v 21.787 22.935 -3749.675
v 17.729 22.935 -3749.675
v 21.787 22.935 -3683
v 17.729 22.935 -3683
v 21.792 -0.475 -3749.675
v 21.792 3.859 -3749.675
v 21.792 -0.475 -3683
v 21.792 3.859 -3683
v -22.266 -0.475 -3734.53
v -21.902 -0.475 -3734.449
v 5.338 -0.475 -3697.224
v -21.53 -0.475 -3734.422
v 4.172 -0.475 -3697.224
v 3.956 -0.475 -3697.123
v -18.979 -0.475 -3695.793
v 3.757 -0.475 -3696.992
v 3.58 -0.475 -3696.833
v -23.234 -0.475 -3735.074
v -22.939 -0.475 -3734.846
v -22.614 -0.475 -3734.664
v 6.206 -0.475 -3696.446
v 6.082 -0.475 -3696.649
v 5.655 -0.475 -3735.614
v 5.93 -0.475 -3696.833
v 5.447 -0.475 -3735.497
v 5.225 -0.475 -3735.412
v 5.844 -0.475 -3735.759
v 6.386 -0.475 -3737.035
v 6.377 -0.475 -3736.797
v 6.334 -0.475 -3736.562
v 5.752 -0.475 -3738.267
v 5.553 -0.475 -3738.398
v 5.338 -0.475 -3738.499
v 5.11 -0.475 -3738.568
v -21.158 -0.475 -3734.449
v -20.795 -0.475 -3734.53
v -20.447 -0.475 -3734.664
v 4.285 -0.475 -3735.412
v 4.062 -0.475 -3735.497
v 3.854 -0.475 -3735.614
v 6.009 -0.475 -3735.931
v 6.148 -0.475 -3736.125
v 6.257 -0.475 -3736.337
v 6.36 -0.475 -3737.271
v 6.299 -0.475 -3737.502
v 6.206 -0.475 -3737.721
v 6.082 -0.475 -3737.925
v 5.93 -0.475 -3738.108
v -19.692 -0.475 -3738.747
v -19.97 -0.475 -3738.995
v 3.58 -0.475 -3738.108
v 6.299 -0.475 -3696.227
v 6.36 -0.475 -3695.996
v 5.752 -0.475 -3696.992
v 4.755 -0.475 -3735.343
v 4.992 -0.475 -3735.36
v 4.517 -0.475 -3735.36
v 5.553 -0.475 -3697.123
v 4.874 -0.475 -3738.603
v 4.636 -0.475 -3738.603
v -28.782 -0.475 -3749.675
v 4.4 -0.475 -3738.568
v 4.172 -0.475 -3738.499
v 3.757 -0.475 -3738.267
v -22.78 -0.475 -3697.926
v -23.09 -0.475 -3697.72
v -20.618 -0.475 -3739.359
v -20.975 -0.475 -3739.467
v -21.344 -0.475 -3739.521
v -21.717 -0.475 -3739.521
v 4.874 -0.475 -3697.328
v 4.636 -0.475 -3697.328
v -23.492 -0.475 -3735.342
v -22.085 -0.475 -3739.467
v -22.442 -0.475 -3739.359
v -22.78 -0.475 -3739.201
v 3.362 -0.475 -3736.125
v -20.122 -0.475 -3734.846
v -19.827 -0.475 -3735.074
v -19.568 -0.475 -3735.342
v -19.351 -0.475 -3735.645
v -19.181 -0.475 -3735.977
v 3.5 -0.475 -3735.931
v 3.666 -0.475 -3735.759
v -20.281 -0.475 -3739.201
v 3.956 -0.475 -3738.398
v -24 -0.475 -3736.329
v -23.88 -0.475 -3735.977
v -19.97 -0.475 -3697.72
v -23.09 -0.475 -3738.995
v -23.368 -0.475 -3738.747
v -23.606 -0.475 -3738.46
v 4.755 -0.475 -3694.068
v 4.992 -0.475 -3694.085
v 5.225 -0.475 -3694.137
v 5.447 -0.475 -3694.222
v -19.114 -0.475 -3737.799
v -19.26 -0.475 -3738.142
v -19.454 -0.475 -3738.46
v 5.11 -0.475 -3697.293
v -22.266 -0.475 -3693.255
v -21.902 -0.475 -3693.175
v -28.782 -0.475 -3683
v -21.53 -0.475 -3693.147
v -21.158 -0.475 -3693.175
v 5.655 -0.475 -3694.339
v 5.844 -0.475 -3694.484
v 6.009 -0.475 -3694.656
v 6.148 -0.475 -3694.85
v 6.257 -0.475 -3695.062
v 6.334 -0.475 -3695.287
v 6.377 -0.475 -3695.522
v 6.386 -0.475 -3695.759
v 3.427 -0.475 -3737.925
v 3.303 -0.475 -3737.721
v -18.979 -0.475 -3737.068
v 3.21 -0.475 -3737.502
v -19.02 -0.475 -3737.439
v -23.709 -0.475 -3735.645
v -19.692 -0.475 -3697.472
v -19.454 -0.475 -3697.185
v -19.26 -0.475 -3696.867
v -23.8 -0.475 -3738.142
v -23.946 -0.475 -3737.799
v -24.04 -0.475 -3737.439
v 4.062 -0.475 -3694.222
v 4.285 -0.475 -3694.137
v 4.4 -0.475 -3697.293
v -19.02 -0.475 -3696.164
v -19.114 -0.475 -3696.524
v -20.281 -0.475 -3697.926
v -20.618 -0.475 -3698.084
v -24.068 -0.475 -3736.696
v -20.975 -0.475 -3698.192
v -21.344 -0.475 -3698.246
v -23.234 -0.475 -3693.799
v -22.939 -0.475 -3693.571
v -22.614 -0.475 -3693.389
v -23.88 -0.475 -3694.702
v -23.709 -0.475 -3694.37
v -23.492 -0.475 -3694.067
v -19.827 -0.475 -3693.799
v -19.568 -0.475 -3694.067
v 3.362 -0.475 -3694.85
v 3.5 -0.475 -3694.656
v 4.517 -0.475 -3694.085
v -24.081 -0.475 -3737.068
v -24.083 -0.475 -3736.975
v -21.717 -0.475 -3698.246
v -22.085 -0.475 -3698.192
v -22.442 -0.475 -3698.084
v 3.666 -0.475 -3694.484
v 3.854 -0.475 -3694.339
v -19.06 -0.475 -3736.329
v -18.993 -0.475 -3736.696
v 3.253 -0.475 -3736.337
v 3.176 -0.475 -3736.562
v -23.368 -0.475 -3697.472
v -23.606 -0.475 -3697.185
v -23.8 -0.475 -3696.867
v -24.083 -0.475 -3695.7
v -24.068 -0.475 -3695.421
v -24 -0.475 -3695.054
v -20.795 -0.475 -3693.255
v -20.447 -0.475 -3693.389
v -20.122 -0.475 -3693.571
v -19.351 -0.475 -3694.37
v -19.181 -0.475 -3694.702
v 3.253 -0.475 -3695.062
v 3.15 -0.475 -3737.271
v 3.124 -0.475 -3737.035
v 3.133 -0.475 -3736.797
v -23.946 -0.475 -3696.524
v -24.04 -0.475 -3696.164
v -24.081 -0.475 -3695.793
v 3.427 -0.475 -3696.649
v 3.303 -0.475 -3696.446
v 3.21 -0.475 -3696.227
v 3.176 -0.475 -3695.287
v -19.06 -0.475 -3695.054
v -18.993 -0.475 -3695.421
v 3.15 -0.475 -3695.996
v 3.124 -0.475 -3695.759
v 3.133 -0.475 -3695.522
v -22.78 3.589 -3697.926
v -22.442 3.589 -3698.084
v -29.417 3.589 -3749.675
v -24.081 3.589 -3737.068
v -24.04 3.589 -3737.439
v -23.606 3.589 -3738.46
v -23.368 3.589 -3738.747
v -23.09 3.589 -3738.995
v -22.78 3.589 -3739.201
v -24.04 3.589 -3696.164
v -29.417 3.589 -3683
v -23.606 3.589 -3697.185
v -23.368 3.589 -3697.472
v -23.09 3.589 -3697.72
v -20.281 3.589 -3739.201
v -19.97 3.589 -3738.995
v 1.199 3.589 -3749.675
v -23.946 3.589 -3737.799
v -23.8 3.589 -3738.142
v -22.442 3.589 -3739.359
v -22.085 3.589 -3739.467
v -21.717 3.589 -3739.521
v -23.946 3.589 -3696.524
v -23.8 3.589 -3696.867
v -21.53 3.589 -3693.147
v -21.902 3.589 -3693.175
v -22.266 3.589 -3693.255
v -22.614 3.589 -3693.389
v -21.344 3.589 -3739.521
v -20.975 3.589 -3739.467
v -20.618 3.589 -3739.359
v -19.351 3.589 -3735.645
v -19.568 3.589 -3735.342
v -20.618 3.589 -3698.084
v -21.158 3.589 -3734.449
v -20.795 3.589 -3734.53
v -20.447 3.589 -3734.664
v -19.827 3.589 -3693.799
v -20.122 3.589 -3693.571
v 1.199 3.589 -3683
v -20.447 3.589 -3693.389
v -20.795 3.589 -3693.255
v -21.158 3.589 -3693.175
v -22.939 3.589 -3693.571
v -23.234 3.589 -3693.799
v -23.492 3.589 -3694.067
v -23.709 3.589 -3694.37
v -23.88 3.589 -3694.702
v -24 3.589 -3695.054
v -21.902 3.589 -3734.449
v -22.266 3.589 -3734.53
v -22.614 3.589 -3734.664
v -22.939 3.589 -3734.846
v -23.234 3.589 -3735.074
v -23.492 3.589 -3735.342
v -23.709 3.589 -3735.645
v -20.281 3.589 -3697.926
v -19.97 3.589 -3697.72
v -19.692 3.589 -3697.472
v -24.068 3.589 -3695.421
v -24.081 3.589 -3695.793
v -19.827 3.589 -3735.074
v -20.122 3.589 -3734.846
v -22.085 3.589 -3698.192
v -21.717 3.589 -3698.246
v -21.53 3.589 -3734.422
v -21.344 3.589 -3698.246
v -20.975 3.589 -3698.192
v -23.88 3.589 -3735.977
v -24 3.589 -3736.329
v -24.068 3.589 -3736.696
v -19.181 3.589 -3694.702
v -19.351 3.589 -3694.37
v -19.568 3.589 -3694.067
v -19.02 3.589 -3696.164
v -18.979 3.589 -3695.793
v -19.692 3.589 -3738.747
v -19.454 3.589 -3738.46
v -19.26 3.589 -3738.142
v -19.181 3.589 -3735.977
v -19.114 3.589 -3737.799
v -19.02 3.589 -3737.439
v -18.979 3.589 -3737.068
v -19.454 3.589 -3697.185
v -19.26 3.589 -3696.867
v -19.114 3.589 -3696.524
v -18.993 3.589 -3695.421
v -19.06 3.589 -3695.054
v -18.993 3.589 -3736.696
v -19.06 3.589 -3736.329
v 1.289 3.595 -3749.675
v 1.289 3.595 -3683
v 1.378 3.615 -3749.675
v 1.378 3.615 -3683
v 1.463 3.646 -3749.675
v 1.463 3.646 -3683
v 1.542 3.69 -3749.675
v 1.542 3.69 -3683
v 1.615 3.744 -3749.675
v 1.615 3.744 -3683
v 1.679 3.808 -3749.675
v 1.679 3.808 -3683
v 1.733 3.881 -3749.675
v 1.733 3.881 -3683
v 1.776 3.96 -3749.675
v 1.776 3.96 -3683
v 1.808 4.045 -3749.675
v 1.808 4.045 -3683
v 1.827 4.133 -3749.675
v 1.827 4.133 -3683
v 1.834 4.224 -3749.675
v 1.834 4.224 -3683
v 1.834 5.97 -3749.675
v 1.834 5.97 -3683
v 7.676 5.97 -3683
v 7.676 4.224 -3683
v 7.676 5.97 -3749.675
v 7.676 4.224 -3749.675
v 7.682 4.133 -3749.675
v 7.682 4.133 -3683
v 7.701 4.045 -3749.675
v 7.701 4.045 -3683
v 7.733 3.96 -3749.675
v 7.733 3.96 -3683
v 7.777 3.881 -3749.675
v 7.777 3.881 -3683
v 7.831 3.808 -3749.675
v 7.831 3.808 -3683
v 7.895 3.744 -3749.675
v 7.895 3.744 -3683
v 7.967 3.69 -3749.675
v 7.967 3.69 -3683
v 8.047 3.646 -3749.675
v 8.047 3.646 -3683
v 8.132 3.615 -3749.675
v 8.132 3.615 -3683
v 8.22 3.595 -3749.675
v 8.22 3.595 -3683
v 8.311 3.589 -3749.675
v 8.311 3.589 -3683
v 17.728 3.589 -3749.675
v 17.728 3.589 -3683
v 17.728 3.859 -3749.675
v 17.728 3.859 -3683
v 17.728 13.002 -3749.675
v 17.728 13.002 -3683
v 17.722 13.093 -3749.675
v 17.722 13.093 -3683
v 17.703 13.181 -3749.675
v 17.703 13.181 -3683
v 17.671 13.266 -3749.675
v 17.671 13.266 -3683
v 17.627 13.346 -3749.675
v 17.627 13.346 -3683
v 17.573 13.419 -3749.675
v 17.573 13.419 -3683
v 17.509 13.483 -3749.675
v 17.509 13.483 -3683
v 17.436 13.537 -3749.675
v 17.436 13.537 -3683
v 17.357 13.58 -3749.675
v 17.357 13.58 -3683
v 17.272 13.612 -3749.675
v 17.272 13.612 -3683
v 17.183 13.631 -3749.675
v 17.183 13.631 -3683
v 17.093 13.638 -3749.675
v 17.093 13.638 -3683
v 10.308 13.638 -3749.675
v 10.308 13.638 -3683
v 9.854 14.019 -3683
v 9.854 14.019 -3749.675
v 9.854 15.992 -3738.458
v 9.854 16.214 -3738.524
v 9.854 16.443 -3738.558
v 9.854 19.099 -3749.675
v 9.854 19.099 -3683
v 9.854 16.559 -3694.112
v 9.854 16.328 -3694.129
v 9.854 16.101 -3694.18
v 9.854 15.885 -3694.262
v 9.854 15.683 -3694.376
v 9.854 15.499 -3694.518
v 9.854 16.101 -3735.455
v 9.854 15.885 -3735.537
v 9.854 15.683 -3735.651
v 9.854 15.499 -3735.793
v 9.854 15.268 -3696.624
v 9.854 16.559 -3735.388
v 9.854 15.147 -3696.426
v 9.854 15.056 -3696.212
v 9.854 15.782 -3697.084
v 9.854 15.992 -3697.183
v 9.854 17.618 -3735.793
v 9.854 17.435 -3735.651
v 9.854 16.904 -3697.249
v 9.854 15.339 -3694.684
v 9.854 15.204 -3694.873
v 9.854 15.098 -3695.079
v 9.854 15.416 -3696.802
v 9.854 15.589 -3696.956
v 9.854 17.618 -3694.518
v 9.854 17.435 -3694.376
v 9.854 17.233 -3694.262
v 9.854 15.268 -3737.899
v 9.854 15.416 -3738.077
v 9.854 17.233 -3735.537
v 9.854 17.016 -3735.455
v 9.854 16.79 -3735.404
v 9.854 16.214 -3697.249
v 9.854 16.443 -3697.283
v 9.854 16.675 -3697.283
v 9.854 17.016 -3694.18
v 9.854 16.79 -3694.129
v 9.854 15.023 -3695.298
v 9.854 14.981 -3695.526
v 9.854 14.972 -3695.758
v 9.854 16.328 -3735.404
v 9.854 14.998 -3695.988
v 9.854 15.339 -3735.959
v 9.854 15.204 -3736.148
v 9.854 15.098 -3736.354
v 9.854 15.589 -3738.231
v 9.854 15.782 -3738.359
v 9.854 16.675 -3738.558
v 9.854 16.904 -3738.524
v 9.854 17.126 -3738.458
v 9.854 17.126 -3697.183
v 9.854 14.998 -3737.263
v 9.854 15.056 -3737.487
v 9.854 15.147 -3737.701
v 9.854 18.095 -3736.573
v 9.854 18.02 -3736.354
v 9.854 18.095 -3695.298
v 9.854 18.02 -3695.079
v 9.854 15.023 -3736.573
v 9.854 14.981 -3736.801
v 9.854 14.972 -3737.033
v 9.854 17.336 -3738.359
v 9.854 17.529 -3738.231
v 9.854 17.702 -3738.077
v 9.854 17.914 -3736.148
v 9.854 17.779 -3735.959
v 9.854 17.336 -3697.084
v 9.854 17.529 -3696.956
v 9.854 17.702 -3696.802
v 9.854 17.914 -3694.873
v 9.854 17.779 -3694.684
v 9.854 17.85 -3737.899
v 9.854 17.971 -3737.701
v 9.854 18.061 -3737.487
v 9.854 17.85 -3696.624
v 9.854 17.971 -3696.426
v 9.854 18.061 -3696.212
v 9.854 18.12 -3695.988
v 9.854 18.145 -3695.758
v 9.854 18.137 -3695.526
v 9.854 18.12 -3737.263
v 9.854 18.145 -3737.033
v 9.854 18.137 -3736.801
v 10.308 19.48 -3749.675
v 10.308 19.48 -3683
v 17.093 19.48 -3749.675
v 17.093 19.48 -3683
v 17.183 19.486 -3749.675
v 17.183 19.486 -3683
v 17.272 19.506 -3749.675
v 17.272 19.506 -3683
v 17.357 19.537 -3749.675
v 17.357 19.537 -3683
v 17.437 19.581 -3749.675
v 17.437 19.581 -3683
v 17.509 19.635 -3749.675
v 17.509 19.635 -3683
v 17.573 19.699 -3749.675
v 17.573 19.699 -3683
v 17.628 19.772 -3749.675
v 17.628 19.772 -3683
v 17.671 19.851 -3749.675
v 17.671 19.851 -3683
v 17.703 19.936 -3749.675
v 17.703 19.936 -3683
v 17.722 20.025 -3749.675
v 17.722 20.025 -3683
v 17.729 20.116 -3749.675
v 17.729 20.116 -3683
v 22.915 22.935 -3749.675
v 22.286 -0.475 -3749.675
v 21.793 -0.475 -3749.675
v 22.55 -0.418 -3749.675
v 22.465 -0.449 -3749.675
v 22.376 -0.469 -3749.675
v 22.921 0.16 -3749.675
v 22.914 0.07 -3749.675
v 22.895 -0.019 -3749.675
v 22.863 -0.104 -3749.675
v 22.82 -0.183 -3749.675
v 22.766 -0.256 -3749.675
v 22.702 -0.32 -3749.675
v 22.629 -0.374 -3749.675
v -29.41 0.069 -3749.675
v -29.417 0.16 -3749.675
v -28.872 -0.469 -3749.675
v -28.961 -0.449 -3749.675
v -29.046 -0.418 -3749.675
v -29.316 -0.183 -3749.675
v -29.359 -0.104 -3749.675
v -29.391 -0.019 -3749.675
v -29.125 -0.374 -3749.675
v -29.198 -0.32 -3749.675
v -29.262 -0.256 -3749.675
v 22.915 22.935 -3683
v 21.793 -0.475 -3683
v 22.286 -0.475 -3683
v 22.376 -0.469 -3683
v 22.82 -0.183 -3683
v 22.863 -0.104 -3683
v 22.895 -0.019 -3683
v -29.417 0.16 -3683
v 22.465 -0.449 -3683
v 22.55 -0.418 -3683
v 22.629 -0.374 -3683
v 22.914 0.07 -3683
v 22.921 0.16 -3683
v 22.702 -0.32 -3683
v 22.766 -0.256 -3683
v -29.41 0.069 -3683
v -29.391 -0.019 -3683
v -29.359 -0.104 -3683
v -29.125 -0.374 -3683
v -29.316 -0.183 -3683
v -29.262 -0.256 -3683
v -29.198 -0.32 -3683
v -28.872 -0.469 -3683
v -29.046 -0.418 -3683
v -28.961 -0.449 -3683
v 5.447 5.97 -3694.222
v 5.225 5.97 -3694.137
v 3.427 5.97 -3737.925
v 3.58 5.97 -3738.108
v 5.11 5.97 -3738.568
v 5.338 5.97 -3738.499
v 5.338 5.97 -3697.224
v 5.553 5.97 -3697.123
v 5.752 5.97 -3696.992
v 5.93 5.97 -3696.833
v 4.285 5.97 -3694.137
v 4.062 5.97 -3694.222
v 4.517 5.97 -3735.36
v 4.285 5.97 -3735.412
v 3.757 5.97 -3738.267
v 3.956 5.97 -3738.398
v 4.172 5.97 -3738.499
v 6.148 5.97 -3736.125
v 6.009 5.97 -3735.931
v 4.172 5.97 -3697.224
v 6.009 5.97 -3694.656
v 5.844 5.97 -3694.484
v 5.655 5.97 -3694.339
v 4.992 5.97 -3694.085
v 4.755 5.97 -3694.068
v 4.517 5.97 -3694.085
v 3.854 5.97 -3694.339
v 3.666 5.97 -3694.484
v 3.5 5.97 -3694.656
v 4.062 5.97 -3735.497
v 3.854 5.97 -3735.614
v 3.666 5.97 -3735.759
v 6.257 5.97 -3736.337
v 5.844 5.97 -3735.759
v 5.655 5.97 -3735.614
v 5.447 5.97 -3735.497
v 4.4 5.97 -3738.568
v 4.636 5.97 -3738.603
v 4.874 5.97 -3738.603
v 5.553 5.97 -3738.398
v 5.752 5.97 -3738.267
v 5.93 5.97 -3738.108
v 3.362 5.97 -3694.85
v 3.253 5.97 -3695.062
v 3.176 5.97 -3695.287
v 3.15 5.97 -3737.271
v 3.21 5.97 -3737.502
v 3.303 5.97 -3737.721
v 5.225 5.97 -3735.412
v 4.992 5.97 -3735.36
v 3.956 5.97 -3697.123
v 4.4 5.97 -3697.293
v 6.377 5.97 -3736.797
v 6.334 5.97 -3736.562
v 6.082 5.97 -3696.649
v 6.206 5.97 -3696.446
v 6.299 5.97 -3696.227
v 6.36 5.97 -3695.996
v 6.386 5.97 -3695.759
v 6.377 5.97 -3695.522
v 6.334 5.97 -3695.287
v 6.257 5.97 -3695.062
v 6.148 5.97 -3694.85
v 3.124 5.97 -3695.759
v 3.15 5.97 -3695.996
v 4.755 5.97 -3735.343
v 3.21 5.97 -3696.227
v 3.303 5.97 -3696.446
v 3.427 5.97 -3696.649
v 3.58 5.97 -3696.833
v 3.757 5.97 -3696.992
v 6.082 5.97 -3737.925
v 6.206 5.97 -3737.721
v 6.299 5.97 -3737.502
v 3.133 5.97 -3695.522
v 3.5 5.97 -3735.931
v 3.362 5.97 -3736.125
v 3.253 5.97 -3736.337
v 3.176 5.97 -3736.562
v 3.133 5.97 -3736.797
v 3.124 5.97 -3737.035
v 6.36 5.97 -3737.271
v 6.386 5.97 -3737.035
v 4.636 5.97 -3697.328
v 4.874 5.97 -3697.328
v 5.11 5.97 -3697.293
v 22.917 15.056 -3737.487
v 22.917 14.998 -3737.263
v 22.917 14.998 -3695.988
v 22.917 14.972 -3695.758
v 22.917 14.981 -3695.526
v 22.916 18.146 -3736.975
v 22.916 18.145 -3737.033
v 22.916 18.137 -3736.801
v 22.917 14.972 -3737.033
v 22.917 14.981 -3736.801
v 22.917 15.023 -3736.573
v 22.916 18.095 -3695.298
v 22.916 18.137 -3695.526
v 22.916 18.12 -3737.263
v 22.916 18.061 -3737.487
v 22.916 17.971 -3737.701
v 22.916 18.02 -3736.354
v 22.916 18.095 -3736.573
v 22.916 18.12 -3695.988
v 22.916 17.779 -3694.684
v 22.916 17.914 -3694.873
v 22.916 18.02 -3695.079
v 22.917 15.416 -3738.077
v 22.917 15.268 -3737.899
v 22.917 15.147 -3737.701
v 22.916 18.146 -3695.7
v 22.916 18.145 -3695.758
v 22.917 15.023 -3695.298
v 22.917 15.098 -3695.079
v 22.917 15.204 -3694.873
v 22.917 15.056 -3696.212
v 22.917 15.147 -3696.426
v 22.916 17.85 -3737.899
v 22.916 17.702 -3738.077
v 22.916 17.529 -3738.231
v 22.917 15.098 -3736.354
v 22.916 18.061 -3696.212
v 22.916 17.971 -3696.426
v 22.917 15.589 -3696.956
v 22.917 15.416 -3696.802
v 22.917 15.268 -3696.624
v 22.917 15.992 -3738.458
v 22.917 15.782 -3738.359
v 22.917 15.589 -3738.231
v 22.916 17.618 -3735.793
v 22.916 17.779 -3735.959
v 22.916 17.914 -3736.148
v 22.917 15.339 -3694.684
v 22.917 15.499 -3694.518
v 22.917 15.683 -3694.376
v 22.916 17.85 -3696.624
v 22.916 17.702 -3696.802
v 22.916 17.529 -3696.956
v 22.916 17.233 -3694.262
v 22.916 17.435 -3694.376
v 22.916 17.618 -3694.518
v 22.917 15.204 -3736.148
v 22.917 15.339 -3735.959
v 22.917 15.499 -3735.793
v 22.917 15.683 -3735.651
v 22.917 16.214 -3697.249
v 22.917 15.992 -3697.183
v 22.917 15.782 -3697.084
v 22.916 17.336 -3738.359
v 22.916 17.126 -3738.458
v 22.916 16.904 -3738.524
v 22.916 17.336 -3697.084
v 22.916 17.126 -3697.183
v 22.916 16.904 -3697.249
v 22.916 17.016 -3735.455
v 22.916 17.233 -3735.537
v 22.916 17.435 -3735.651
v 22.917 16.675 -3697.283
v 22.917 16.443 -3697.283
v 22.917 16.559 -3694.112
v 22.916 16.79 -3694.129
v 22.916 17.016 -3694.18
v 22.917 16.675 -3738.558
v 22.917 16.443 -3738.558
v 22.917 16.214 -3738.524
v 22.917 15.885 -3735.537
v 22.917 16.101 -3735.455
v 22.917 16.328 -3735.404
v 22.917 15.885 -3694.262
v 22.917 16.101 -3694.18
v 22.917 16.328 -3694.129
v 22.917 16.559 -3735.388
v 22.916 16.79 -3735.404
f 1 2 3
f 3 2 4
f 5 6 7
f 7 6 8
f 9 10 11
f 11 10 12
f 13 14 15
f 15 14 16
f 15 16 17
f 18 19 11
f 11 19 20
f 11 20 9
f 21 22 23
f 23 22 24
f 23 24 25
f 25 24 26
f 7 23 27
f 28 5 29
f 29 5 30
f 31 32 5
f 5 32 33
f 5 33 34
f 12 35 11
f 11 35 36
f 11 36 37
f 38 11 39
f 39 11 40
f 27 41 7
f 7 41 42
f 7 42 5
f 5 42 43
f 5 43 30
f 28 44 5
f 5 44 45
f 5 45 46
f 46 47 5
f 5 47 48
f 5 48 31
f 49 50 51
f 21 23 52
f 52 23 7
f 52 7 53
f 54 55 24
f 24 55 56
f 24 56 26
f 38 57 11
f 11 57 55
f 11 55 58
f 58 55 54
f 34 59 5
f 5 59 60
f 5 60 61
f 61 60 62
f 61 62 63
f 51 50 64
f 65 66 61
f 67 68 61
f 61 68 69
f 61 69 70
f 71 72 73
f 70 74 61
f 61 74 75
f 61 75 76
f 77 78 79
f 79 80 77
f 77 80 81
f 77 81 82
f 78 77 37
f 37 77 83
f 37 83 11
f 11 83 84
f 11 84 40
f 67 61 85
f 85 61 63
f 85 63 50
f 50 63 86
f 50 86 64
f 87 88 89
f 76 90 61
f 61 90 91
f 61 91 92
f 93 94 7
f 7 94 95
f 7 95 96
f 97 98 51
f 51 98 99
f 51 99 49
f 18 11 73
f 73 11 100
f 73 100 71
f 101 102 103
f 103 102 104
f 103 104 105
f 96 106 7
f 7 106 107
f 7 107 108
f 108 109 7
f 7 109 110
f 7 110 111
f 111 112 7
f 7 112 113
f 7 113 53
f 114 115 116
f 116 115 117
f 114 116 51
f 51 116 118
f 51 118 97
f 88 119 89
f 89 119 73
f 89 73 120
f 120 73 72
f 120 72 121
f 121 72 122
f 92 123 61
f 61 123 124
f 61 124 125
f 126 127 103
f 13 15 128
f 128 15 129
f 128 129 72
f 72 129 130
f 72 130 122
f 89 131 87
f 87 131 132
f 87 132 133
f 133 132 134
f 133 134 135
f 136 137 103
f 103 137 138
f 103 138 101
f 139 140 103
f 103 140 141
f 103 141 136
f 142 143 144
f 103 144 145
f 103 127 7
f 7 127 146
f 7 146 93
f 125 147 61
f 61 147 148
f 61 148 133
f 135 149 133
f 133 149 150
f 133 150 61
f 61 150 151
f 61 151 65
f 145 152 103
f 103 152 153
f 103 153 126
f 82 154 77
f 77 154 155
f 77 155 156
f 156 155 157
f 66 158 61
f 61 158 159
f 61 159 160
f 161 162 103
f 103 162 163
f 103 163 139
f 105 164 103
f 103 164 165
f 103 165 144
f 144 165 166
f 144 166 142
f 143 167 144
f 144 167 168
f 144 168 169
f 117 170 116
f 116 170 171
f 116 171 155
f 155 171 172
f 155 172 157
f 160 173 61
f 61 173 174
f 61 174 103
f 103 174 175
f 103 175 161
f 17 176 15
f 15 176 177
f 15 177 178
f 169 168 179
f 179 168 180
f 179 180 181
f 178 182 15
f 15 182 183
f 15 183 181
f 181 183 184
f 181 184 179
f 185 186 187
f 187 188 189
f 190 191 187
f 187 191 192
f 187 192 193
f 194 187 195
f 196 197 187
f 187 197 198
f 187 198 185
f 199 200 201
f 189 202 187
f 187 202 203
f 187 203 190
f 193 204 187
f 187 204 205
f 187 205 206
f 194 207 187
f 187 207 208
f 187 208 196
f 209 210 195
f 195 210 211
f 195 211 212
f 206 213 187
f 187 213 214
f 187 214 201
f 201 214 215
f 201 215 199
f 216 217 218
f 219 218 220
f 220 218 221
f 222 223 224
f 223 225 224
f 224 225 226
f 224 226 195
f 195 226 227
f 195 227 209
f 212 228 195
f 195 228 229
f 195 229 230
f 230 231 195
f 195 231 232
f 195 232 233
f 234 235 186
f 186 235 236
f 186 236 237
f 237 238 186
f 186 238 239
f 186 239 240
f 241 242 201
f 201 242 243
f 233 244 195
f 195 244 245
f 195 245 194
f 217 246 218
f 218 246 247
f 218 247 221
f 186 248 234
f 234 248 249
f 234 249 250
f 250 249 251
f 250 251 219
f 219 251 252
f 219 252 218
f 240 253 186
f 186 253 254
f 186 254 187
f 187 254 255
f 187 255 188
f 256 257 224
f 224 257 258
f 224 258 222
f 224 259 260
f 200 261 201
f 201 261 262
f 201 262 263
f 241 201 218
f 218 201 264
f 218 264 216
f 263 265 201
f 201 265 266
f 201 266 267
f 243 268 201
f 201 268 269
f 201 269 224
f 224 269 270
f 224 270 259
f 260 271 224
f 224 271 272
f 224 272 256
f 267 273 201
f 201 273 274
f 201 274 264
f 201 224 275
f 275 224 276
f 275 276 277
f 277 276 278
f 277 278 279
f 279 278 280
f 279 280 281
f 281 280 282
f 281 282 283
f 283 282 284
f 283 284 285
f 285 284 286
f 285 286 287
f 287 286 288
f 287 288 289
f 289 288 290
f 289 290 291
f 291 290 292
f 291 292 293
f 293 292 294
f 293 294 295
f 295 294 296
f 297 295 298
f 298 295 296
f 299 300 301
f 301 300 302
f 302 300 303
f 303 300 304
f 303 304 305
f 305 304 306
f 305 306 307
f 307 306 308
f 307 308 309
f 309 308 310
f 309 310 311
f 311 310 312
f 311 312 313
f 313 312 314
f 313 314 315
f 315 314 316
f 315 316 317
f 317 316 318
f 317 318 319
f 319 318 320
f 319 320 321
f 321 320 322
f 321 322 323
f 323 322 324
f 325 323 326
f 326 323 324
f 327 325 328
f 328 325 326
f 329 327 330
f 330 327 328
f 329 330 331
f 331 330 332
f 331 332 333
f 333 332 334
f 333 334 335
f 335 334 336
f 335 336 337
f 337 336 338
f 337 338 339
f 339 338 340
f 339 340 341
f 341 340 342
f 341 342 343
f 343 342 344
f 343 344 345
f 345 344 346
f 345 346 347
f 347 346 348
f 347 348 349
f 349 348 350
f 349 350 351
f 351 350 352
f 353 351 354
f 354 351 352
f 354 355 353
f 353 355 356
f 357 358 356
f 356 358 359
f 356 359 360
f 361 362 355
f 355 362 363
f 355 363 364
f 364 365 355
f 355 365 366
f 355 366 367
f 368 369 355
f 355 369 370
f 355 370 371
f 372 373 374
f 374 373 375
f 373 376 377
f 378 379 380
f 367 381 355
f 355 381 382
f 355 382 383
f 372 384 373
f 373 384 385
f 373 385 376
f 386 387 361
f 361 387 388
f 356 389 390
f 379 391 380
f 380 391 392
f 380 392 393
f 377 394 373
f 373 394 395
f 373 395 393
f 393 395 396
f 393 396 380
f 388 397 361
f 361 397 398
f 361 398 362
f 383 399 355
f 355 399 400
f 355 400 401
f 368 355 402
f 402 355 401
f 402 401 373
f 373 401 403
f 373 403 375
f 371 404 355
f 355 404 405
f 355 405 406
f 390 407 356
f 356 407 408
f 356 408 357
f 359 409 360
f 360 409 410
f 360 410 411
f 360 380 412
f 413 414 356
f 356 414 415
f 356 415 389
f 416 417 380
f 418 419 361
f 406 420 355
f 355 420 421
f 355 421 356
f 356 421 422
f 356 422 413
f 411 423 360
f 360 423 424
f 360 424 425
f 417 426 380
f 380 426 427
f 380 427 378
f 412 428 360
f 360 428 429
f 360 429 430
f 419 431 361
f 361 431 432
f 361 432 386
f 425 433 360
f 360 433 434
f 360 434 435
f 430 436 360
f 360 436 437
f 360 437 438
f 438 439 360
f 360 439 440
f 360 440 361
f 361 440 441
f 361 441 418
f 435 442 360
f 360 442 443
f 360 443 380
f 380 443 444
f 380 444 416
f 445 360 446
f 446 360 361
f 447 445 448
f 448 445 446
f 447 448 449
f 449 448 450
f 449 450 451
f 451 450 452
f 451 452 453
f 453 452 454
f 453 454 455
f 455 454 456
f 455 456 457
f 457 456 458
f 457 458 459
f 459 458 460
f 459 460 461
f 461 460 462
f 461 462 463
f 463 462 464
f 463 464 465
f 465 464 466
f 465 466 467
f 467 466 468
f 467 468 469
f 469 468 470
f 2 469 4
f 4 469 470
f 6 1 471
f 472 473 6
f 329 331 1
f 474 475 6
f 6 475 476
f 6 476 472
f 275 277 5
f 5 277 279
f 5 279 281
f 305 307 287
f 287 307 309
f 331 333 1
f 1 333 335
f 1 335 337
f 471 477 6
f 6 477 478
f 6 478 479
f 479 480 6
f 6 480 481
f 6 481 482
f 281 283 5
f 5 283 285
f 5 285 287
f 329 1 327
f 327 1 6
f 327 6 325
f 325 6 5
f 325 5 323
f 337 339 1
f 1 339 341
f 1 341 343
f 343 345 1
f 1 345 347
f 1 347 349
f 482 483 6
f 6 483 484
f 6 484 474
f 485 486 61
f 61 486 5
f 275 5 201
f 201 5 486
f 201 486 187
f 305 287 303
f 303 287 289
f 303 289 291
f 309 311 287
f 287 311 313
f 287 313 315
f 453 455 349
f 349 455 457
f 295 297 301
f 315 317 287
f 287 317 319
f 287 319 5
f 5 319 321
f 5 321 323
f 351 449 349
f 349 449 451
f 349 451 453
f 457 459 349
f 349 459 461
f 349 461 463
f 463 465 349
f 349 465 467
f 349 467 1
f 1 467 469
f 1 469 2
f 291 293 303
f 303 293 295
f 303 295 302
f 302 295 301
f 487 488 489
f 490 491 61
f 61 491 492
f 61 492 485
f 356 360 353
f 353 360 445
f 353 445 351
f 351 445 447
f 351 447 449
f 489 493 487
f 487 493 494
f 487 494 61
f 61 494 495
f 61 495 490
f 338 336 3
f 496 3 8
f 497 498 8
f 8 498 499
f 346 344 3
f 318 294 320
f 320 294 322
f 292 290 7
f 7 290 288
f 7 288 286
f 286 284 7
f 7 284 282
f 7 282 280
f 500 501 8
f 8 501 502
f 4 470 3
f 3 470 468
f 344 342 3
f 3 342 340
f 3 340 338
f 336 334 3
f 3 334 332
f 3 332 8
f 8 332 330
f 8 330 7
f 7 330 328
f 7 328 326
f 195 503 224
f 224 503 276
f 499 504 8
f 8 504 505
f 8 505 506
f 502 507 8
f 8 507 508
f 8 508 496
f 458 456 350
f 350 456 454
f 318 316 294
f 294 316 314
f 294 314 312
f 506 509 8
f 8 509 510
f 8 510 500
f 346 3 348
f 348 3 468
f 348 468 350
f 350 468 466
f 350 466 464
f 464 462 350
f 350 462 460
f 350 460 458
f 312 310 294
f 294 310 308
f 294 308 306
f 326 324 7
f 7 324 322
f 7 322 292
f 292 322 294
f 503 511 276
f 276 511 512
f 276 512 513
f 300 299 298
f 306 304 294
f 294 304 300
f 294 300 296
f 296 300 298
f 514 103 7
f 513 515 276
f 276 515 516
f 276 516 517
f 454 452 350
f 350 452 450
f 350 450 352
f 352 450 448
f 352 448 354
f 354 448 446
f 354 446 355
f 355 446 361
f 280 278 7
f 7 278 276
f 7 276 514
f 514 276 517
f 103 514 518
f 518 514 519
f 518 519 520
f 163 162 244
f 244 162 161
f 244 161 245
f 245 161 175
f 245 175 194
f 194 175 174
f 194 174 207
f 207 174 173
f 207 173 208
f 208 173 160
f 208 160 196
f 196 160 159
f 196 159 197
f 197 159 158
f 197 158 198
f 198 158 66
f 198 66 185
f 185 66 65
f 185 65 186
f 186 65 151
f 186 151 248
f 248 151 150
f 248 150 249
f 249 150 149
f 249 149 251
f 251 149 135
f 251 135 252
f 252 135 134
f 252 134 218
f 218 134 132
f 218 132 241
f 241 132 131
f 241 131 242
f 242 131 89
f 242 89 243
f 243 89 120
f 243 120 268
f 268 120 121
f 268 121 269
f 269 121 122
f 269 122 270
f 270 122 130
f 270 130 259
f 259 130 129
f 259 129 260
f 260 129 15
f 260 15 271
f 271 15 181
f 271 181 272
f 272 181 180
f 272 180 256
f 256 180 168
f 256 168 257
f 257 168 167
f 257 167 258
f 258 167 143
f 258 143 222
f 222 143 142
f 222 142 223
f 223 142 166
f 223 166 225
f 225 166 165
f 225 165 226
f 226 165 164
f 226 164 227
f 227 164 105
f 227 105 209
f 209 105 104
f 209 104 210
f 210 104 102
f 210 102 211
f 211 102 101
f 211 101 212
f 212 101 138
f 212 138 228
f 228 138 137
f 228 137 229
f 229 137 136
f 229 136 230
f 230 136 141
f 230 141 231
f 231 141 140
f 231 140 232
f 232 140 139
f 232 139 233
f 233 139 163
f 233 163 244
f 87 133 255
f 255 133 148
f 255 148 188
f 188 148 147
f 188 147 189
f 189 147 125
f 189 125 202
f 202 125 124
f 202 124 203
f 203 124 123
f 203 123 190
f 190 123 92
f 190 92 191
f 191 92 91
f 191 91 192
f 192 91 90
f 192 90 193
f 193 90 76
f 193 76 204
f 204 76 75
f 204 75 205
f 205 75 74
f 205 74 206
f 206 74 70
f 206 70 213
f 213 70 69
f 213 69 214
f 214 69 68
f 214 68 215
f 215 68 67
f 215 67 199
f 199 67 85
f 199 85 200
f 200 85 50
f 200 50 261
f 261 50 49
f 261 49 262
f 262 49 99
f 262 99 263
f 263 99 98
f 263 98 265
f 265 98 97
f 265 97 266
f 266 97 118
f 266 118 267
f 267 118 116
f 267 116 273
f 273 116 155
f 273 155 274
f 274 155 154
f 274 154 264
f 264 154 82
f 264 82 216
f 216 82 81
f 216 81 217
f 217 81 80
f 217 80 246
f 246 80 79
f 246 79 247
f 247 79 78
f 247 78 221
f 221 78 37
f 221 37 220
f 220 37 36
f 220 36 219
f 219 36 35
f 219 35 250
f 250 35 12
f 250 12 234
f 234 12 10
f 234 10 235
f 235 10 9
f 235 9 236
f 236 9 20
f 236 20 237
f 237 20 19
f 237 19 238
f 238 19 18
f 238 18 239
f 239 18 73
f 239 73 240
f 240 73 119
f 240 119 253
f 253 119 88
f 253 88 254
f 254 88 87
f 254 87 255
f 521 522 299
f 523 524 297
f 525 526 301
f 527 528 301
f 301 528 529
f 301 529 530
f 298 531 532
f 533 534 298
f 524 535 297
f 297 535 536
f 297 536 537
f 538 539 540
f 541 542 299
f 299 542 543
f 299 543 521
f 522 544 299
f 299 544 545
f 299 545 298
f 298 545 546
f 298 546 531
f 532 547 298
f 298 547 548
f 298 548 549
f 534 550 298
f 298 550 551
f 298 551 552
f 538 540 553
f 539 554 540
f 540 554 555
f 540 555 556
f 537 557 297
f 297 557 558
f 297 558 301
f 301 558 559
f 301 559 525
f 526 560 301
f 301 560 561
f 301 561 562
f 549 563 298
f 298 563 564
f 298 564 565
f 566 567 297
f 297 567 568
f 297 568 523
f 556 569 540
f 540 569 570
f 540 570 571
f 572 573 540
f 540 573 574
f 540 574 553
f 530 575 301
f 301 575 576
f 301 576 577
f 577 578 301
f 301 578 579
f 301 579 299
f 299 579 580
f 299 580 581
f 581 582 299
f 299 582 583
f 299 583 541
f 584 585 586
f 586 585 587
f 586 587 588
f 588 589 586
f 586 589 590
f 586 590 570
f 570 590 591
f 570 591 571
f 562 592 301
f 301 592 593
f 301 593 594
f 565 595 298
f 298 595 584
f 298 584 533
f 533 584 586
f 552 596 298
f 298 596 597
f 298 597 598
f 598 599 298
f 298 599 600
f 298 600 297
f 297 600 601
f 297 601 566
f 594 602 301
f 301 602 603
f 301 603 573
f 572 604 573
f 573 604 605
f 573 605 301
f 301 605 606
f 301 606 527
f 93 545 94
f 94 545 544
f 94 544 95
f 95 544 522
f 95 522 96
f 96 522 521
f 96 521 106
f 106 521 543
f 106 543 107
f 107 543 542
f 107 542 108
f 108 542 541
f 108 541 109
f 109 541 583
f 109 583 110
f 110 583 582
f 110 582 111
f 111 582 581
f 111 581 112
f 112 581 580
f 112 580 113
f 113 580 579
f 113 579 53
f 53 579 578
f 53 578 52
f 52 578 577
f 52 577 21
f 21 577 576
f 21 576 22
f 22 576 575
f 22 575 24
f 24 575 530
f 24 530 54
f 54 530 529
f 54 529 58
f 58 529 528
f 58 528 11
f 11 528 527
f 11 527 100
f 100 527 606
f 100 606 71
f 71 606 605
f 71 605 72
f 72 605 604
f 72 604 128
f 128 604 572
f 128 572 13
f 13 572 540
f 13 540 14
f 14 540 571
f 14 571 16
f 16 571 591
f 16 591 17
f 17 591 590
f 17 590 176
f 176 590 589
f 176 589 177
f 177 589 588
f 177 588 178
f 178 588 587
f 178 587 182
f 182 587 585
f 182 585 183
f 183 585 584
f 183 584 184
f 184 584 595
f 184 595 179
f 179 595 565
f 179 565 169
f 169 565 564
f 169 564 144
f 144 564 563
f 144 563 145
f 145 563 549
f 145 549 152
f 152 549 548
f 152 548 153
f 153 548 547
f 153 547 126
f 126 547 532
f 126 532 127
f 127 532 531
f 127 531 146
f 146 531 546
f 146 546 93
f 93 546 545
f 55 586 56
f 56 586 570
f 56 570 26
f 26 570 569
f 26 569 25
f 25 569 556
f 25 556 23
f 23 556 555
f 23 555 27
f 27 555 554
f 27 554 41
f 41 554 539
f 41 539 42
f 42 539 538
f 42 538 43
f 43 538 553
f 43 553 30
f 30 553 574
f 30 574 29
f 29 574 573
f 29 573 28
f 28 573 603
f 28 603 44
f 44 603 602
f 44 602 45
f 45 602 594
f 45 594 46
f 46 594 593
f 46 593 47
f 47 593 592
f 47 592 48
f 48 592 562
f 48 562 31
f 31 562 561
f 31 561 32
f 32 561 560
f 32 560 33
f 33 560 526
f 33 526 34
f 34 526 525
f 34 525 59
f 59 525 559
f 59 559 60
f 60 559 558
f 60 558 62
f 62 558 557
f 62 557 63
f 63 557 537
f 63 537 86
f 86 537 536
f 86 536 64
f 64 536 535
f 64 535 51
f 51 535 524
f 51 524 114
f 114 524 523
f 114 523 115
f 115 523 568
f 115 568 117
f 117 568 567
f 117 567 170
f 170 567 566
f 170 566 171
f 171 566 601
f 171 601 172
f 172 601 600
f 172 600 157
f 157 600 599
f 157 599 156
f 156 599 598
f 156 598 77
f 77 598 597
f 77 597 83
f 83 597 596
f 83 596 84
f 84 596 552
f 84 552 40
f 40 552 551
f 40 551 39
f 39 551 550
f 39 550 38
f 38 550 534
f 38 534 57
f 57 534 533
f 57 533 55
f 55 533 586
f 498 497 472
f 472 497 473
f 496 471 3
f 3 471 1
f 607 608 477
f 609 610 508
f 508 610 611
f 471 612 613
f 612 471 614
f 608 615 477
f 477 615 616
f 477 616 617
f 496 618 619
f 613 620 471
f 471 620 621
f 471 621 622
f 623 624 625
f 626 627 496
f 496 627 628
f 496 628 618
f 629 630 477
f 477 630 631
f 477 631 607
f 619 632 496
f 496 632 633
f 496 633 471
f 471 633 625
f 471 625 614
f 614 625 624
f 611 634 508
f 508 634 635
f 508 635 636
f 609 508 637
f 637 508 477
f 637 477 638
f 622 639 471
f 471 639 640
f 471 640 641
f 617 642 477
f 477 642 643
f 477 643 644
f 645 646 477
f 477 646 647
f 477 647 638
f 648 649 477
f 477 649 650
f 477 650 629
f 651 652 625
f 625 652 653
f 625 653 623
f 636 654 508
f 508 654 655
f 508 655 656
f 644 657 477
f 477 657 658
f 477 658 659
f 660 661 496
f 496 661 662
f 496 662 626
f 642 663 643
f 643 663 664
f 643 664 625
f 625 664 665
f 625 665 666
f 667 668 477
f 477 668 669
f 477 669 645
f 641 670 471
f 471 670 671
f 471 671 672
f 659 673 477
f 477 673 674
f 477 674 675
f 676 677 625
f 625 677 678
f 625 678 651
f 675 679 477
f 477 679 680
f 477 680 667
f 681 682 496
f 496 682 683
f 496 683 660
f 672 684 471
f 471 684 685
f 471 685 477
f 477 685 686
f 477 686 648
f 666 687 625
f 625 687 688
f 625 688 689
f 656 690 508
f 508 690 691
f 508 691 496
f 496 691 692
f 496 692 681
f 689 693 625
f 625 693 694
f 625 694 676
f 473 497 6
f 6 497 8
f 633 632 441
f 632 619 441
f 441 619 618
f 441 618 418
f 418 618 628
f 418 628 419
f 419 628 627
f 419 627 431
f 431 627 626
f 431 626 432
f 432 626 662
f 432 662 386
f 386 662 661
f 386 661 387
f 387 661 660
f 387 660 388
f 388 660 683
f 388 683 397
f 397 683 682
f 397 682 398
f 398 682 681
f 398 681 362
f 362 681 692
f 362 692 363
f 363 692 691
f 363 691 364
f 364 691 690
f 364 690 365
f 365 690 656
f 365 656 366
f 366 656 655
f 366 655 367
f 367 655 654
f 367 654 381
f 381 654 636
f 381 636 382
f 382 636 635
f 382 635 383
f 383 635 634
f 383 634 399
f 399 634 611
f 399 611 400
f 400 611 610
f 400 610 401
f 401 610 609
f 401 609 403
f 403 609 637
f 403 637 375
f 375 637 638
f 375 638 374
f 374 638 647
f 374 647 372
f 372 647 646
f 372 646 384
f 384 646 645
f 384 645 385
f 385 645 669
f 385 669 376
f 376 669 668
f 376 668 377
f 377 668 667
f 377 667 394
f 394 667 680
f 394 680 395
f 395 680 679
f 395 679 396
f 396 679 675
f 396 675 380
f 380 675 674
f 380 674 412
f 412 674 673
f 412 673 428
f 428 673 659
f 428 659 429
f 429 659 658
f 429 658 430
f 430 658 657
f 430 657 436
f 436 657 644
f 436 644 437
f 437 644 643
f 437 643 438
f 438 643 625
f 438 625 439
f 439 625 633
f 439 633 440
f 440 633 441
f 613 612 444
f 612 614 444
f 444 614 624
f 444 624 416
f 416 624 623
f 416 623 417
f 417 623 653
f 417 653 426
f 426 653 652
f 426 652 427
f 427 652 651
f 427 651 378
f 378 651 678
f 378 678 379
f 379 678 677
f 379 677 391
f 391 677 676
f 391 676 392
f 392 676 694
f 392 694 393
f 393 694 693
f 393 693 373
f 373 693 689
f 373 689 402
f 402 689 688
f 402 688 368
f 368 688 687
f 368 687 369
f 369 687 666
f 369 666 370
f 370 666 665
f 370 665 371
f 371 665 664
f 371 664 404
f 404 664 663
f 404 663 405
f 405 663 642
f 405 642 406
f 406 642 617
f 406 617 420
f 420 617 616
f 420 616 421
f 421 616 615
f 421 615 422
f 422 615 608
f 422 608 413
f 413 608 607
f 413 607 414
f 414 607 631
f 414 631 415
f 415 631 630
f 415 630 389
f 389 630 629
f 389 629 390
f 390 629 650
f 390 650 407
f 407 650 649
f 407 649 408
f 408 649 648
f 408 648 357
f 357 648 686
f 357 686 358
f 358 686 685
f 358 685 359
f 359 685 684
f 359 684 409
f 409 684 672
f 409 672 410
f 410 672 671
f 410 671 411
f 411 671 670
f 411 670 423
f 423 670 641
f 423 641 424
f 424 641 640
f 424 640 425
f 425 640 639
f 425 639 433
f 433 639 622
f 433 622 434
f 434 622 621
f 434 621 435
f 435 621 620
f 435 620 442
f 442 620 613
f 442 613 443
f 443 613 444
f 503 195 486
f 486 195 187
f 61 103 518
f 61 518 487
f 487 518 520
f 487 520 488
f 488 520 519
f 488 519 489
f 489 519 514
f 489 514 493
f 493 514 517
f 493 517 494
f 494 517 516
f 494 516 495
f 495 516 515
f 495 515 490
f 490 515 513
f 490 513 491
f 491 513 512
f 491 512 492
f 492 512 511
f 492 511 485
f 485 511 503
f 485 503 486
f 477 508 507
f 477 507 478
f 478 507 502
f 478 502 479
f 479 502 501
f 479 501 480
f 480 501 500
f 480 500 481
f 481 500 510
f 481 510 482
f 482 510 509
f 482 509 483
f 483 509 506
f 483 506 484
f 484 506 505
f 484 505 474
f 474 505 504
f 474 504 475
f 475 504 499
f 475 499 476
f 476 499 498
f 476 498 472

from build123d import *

# Parameters (mm, degrees)
BOSS_EXTRUDE1_DEPTH        = 66.675
CUT_EXTRUDE1_REACH         = 75.8
CUT_EXTRUDE2_REACH         = 75.8
SKETCH6_W                  = 66.675
SKETCH6_H                  = 4.064
BOSS_EXTRUDE2_DEPTH        = 22.21738
F_10_CLEARANCE_HOLE1_D     = 5.1054
SKETCH12_W                 = 5.842
SKETCH12_H                 = 5.49275
CUT_EXTRUDE4_DEPTH         = 77.796738301
F_4_CLEARANCE_HOLE1_D      = 3.2639
SKETCH19_W                 = 66.675
SKETCH19_H                 = 23.410344024
BOSS_EXTRUDE7_DEPTH        = 1.12776
F_1_8_0_1250_DOWEL_HOLE1_D = 3.175
SKETCH20_W                 = 1.016
SKETCH20_H                 = 4.064
CUT_EXTRUDE5_DEPTH         = 77.796821417
FILLET1_R                  = 0.635


with BuildPart() as part:
    # Sketch1 → Boss-Extrude1 (new body)
    with BuildSketch(Plane(origin=(0, 0, -3683), x_dir=(-1, 0, 0), z_dir=(0, 0, -1))):
        with BuildLine():
            Line((7.945265893, 3.588862728), (-1.198734107, 3.588862728))
            ThreePointArc((-1.198734107, 3.588862728), (-1.647746913, 3.774849922), (-1.833734107, 4.223862728))
            Line((-1.833734107, 4.223862728), (-1.833734107, 5.747862728))
            ThreePointArc((-1.833734107, 5.747862728), (-1.647746913, 6.196875535), (-1.198734107, 6.382862728))
            Line((-1.198734107, 6.382862728), (1.621629442, 6.382862728))
            Line((1.621629442, 6.382862728), (1.621629442, 6.890862686))
            Line((1.621629442, 6.890862686), (-2.214734107, 11.462862728))
            Line((-2.214734107, 11.462862728), (-7.294734107, 11.462862728))
            Line((-7.294734107, 11.462862728), (-11.131097656, 6.890862686))
            Line((-11.131097656, 6.890862686), (-11.131097656, 6.382862728))
            Line((-11.131097656, 6.382862728), (-8.310734107, 6.382862728))
            ThreePointArc((-8.310734107, 6.382862728), (-7.861721301, 6.196875535), (-7.675734107, 5.747862728))
            Line((-7.675734107, 5.747862728), (-7.675734107, 4.223862728))
            ThreePointArc((-7.675734107, 4.223862728), (-7.861721301, 3.774849922), (-8.310734107, 3.588862728))
            Line((-8.310734107, 3.588862728), (-17.454734107, 3.588862728))
            Line((-17.454734107, 3.588862728), (-17.727921752, 3.588862728))
            Line((-17.727921752, 3.588862728), (-17.727921752, 3.858842754))
            Line((-17.727921752, 3.858842754), (-17.728361466, 13.002372481))
            ThreePointArc((-17.728361466, 13.002372481), (-17.542256287, 13.451715967), (-17.092921752, 13.637842754))
            Line((-17.092921752, 13.637842754), (-15.568921752, 13.637842754))
            ThreePointArc((-15.568921752, 13.637842754), (-15.119908946, 13.45185556), (-14.933921752, 13.002842754))
            Line((-14.933921752, 13.002842754), (-14.933921752, 10.182479205))
            Line((-14.933921752, 10.182479205), (-14.425921794, 10.182479205))
            Line((-14.425921794, 10.182479205), (-9.853921752, 14.018842754))
            Line((-9.853921752, 14.018842754), (-9.853921752, 19.098842754))
            Line((-9.853921752, 19.098842754), (-14.425921794, 22.935206303))
            Line((-14.425921794, 22.935206303), (-14.933921752, 22.935206303))
            Line((-14.933921752, 22.935206303), (-14.933921752, 20.114842754))
            ThreePointArc((-14.933921752, 20.114842754), (-15.119908946, 19.665829948), (-15.568921752, 19.479842754))
            Line((-15.568921752, 19.479842754), (-17.092921752, 19.479842754))
            ThreePointArc((-17.092921752, 19.479842754), (-17.542476558, 19.66604812), (-17.728703542, 20.11559397))
            Line((-17.728703542, 20.11559397), (-17.728839138, 22.935206303))
            Line((-17.728839138, 22.935206303), (-21.787214199, 22.935206303))
            Line((-21.787214199, 22.935206303), (-21.791921752, 3.859128788))
            Line((-21.791921752, 3.859128788), (-21.791921752, 3.588862728))
            Line((-21.791921752, 3.588862728), (-21.791921752, -0.475137272))
            Line((-21.791921752, -0.475137272), (-17.727921752, -0.475137272))
            Line((-17.727921752, -0.475137272), (-17.454774021, -0.475137272))
            Line((-17.454774021, -0.475137272), (7.945225979, -0.475137272))
            Line((7.945225979, -0.475137272), (8.215492039, -0.475137272))
            Line((8.215492039, -0.475137272), (8.215492039, 3.588862728))
            Line((8.215492039, 3.588862728), (7.945265893, 3.588862728))
        make_face()
    extrude(amount=BOSS_EXTRUDE1_DEPTH)

    # Sketch2 → Cut-Extrude1 (cut, up to next)
    with BuildSketch(Plane.XY.offset(-3683), mode=Mode.PRIVATE) as cut_extrude1_sk1:
        with BuildLine():
            Line((11.131097656, 6.890862686), (11.131097656, 6.382862728))
            Line((11.131097656, 6.382862728), (8.310734107, 6.382862728))
            ThreePointArc((8.310734107, 6.382862728), (7.861721301, 6.196875535), (7.675734107, 5.747862728))
            Line((7.675734107, 5.747862728), (7.675734107, 11.00880461))
            Line((7.675734107, 11.00880461), (11.131097656, 6.890862686))
        make_face()
    cut_extrude1_tool1 = extrude(cut_extrude1_sk1.sketch, amount=-CUT_EXTRUDE1_REACH, mode=Mode.PRIVATE) & part.part
    # Sketch2 → Cut-Extrude1 (cut, up to next)
    with BuildSketch(Plane.XY.offset(-3683), mode=Mode.PRIVATE) as cut_extrude1_sk2:
        with BuildLine():
            Line((1.833734107, 5.747862728), (1.833734107, 11.00880461))
            Line((1.833734107, 11.00880461), (-1.621629442, 6.890862686))
            Line((-1.621629442, 6.890862686), (-1.621629442, 6.382862728))
            Line((-1.621629442, 6.382862728), (1.198734107, 6.382862728))
            ThreePointArc((1.198734107, 6.382862728), (1.647746913, 6.196875535), (1.833734107, 5.747862728))
        make_face()
    cut_extrude1_tool2 = extrude(cut_extrude1_sk2.sketch, amount=-CUT_EXTRUDE1_REACH, mode=Mode.PRIVATE) & part.part
    add(cut_extrude1_tool1.solids().sort_by_distance((8.930632, 7.925168, -3683))[0], mode=Mode.SUBTRACT)
    add(cut_extrude1_tool2.solids().sort_by_distance((0.578837, 7.925168, -3683))[0], mode=Mode.SUBTRACT)

    # Sketch3 → Cut-Extrude2 (cut, up to next)
    with BuildSketch(Plane.XY.offset(-3683), mode=Mode.PRIVATE) as cut_extrude2_sk1:
        with BuildLine():
            Line((15.568921752, 19.479842754), (10.307979871, 19.479842754))
            Line((10.307979871, 19.479842754), (14.425921794, 22.935206303))
            Line((14.425921794, 22.935206303), (14.933921752, 22.935206303))
            Line((14.933921752, 22.935206303), (14.933921752, 20.114842754))
            ThreePointArc((14.933921752, 20.114842754), (15.119908946, 19.665829948), (15.568921752, 19.479842754))
        make_face()
    cut_extrude2_tool1 = extrude(cut_extrude2_sk1.sketch, amount=-CUT_EXTRUDE2_REACH, mode=Mode.PRIVATE) & part.part
    # Sketch3 → Cut-Extrude2 (cut, up to next)
    with BuildSketch(Plane.XY.offset(-3683), mode=Mode.PRIVATE) as cut_extrude2_sk2:
        with BuildLine():
            Line((10.307979871, 13.637842754), (14.425921794, 10.182479205))
            Line((14.425921794, 10.182479205), (14.933921752, 10.182479205))
            Line((14.933921752, 10.182479205), (14.933921752, 13.002842754))
            ThreePointArc((14.933921752, 13.002842754), (15.119908946, 13.45185556), (15.568921752, 13.637842754))
            Line((15.568921752, 13.637842754), (10.307979871, 13.637842754))
        make_face()
    cut_extrude2_tool2 = extrude(cut_extrude2_sk2.sketch, amount=-CUT_EXTRUDE2_REACH, mode=Mode.PRIVATE) & part.part
    add(cut_extrude2_tool1.solids().sort_by_distance((13.391616, 20.73474, -3683))[0], mode=Mode.SUBTRACT)
    add(cut_extrude2_tool2.solids().sort_by_distance((13.391616, 12.382945, -3683))[0], mode=Mode.SUBTRACT)

    # Sketch6 → Boss-Extrude2 (add)
    with BuildSketch(Plane.ZY.offset(8.215492039)):
        with Locations((-3716.3375, 1.556862728)):
            Rectangle(SKETCH6_W, SKETCH6_H)
    extrude(amount=BOSS_EXTRUDE2_DEPTH)

    # #10 Clearance Hole1 (through all)
    with Locations(Plane(origin=(0, 3.588862728, 0), x_dir=(1, 0, 0), z_dir=(0, 1, 0))):
        with Locations((-21.530172039, 3736.975), (-21.530172039, 3695.7)):
            Hole(F_10_CLEARANCE_HOLE1_D / 2)

    # Sketch12 → Cut-Extrude4 (cut, through all)
    with BuildSketch(Plane(origin=(0, 0, -3749.675), x_dir=(-1, 0, 0), z_dir=(0, 0, -1))):
        with Locations((-4.754734107, 8.716487728)):
            Rectangle(SKETCH12_W, SKETCH12_H)
    extrude(amount=-CUT_EXTRUDE4_DEPTH, mode=Mode.SUBTRACT)

    # #4 Clearance Hole1 (through all)
    with Locations(Plane(origin=(0, 5.970112728, 0), x_dir=(1, 0, 0), z_dir=(0, 1, 0))):
        with Locations((4.754734107, 3736.975), (4.754734107, 3695.7)):
            Hole(F_4_CLEARANCE_HOLE1_D / 2)

    # Sketch19 → Boss-Extrude7 (add)
    with BuildSketch(Plane(origin=(21.792872772, 0.005377998, 0), x_dir=(0, 0, -1), z_dir=(0.9999999695503556, 0.0002467778108309542, 0))):
        with Locations((3716.3375, 11.224656992)):
            Rectangle(SKETCH19_W, SKETCH19_H)
    extrude(amount=BOSS_EXTRUDE7_DEPTH)

    # 1/8 (0.1250) Dowel Hole1 (through all)
    with Locations(Plane.ZY.offset(-9.853921752)):
        with Locations((-3736.975, 16.558842754), (-3695.7, 16.558842754)):
            Hole(F_1_8_0_1250_DOWEL_HOLE1_D / 2)

    # Sketch20 → Cut-Extrude5 (cut, through all)
    with BuildSketch(Plane.XY.offset(-3683)):
        with Locations((-29.924872039, 1.556862728)):
            Rectangle(SKETCH20_W, SKETCH20_H)
    extrude(amount=-CUT_EXTRUDE5_DEPTH, mode=Mode.SUBTRACT)

    # Fillet1
    fillet1_edges = [part.edges().sort_by_distance(p)[0] for p in [
        (22.920751318, -0.474858701, -3716.3375),
        (-29.416872039, -0.475137272, -3716.3375),
    ]]
    fillet(fillet1_edges, radius=FILLET1_R)


solid = part.part
